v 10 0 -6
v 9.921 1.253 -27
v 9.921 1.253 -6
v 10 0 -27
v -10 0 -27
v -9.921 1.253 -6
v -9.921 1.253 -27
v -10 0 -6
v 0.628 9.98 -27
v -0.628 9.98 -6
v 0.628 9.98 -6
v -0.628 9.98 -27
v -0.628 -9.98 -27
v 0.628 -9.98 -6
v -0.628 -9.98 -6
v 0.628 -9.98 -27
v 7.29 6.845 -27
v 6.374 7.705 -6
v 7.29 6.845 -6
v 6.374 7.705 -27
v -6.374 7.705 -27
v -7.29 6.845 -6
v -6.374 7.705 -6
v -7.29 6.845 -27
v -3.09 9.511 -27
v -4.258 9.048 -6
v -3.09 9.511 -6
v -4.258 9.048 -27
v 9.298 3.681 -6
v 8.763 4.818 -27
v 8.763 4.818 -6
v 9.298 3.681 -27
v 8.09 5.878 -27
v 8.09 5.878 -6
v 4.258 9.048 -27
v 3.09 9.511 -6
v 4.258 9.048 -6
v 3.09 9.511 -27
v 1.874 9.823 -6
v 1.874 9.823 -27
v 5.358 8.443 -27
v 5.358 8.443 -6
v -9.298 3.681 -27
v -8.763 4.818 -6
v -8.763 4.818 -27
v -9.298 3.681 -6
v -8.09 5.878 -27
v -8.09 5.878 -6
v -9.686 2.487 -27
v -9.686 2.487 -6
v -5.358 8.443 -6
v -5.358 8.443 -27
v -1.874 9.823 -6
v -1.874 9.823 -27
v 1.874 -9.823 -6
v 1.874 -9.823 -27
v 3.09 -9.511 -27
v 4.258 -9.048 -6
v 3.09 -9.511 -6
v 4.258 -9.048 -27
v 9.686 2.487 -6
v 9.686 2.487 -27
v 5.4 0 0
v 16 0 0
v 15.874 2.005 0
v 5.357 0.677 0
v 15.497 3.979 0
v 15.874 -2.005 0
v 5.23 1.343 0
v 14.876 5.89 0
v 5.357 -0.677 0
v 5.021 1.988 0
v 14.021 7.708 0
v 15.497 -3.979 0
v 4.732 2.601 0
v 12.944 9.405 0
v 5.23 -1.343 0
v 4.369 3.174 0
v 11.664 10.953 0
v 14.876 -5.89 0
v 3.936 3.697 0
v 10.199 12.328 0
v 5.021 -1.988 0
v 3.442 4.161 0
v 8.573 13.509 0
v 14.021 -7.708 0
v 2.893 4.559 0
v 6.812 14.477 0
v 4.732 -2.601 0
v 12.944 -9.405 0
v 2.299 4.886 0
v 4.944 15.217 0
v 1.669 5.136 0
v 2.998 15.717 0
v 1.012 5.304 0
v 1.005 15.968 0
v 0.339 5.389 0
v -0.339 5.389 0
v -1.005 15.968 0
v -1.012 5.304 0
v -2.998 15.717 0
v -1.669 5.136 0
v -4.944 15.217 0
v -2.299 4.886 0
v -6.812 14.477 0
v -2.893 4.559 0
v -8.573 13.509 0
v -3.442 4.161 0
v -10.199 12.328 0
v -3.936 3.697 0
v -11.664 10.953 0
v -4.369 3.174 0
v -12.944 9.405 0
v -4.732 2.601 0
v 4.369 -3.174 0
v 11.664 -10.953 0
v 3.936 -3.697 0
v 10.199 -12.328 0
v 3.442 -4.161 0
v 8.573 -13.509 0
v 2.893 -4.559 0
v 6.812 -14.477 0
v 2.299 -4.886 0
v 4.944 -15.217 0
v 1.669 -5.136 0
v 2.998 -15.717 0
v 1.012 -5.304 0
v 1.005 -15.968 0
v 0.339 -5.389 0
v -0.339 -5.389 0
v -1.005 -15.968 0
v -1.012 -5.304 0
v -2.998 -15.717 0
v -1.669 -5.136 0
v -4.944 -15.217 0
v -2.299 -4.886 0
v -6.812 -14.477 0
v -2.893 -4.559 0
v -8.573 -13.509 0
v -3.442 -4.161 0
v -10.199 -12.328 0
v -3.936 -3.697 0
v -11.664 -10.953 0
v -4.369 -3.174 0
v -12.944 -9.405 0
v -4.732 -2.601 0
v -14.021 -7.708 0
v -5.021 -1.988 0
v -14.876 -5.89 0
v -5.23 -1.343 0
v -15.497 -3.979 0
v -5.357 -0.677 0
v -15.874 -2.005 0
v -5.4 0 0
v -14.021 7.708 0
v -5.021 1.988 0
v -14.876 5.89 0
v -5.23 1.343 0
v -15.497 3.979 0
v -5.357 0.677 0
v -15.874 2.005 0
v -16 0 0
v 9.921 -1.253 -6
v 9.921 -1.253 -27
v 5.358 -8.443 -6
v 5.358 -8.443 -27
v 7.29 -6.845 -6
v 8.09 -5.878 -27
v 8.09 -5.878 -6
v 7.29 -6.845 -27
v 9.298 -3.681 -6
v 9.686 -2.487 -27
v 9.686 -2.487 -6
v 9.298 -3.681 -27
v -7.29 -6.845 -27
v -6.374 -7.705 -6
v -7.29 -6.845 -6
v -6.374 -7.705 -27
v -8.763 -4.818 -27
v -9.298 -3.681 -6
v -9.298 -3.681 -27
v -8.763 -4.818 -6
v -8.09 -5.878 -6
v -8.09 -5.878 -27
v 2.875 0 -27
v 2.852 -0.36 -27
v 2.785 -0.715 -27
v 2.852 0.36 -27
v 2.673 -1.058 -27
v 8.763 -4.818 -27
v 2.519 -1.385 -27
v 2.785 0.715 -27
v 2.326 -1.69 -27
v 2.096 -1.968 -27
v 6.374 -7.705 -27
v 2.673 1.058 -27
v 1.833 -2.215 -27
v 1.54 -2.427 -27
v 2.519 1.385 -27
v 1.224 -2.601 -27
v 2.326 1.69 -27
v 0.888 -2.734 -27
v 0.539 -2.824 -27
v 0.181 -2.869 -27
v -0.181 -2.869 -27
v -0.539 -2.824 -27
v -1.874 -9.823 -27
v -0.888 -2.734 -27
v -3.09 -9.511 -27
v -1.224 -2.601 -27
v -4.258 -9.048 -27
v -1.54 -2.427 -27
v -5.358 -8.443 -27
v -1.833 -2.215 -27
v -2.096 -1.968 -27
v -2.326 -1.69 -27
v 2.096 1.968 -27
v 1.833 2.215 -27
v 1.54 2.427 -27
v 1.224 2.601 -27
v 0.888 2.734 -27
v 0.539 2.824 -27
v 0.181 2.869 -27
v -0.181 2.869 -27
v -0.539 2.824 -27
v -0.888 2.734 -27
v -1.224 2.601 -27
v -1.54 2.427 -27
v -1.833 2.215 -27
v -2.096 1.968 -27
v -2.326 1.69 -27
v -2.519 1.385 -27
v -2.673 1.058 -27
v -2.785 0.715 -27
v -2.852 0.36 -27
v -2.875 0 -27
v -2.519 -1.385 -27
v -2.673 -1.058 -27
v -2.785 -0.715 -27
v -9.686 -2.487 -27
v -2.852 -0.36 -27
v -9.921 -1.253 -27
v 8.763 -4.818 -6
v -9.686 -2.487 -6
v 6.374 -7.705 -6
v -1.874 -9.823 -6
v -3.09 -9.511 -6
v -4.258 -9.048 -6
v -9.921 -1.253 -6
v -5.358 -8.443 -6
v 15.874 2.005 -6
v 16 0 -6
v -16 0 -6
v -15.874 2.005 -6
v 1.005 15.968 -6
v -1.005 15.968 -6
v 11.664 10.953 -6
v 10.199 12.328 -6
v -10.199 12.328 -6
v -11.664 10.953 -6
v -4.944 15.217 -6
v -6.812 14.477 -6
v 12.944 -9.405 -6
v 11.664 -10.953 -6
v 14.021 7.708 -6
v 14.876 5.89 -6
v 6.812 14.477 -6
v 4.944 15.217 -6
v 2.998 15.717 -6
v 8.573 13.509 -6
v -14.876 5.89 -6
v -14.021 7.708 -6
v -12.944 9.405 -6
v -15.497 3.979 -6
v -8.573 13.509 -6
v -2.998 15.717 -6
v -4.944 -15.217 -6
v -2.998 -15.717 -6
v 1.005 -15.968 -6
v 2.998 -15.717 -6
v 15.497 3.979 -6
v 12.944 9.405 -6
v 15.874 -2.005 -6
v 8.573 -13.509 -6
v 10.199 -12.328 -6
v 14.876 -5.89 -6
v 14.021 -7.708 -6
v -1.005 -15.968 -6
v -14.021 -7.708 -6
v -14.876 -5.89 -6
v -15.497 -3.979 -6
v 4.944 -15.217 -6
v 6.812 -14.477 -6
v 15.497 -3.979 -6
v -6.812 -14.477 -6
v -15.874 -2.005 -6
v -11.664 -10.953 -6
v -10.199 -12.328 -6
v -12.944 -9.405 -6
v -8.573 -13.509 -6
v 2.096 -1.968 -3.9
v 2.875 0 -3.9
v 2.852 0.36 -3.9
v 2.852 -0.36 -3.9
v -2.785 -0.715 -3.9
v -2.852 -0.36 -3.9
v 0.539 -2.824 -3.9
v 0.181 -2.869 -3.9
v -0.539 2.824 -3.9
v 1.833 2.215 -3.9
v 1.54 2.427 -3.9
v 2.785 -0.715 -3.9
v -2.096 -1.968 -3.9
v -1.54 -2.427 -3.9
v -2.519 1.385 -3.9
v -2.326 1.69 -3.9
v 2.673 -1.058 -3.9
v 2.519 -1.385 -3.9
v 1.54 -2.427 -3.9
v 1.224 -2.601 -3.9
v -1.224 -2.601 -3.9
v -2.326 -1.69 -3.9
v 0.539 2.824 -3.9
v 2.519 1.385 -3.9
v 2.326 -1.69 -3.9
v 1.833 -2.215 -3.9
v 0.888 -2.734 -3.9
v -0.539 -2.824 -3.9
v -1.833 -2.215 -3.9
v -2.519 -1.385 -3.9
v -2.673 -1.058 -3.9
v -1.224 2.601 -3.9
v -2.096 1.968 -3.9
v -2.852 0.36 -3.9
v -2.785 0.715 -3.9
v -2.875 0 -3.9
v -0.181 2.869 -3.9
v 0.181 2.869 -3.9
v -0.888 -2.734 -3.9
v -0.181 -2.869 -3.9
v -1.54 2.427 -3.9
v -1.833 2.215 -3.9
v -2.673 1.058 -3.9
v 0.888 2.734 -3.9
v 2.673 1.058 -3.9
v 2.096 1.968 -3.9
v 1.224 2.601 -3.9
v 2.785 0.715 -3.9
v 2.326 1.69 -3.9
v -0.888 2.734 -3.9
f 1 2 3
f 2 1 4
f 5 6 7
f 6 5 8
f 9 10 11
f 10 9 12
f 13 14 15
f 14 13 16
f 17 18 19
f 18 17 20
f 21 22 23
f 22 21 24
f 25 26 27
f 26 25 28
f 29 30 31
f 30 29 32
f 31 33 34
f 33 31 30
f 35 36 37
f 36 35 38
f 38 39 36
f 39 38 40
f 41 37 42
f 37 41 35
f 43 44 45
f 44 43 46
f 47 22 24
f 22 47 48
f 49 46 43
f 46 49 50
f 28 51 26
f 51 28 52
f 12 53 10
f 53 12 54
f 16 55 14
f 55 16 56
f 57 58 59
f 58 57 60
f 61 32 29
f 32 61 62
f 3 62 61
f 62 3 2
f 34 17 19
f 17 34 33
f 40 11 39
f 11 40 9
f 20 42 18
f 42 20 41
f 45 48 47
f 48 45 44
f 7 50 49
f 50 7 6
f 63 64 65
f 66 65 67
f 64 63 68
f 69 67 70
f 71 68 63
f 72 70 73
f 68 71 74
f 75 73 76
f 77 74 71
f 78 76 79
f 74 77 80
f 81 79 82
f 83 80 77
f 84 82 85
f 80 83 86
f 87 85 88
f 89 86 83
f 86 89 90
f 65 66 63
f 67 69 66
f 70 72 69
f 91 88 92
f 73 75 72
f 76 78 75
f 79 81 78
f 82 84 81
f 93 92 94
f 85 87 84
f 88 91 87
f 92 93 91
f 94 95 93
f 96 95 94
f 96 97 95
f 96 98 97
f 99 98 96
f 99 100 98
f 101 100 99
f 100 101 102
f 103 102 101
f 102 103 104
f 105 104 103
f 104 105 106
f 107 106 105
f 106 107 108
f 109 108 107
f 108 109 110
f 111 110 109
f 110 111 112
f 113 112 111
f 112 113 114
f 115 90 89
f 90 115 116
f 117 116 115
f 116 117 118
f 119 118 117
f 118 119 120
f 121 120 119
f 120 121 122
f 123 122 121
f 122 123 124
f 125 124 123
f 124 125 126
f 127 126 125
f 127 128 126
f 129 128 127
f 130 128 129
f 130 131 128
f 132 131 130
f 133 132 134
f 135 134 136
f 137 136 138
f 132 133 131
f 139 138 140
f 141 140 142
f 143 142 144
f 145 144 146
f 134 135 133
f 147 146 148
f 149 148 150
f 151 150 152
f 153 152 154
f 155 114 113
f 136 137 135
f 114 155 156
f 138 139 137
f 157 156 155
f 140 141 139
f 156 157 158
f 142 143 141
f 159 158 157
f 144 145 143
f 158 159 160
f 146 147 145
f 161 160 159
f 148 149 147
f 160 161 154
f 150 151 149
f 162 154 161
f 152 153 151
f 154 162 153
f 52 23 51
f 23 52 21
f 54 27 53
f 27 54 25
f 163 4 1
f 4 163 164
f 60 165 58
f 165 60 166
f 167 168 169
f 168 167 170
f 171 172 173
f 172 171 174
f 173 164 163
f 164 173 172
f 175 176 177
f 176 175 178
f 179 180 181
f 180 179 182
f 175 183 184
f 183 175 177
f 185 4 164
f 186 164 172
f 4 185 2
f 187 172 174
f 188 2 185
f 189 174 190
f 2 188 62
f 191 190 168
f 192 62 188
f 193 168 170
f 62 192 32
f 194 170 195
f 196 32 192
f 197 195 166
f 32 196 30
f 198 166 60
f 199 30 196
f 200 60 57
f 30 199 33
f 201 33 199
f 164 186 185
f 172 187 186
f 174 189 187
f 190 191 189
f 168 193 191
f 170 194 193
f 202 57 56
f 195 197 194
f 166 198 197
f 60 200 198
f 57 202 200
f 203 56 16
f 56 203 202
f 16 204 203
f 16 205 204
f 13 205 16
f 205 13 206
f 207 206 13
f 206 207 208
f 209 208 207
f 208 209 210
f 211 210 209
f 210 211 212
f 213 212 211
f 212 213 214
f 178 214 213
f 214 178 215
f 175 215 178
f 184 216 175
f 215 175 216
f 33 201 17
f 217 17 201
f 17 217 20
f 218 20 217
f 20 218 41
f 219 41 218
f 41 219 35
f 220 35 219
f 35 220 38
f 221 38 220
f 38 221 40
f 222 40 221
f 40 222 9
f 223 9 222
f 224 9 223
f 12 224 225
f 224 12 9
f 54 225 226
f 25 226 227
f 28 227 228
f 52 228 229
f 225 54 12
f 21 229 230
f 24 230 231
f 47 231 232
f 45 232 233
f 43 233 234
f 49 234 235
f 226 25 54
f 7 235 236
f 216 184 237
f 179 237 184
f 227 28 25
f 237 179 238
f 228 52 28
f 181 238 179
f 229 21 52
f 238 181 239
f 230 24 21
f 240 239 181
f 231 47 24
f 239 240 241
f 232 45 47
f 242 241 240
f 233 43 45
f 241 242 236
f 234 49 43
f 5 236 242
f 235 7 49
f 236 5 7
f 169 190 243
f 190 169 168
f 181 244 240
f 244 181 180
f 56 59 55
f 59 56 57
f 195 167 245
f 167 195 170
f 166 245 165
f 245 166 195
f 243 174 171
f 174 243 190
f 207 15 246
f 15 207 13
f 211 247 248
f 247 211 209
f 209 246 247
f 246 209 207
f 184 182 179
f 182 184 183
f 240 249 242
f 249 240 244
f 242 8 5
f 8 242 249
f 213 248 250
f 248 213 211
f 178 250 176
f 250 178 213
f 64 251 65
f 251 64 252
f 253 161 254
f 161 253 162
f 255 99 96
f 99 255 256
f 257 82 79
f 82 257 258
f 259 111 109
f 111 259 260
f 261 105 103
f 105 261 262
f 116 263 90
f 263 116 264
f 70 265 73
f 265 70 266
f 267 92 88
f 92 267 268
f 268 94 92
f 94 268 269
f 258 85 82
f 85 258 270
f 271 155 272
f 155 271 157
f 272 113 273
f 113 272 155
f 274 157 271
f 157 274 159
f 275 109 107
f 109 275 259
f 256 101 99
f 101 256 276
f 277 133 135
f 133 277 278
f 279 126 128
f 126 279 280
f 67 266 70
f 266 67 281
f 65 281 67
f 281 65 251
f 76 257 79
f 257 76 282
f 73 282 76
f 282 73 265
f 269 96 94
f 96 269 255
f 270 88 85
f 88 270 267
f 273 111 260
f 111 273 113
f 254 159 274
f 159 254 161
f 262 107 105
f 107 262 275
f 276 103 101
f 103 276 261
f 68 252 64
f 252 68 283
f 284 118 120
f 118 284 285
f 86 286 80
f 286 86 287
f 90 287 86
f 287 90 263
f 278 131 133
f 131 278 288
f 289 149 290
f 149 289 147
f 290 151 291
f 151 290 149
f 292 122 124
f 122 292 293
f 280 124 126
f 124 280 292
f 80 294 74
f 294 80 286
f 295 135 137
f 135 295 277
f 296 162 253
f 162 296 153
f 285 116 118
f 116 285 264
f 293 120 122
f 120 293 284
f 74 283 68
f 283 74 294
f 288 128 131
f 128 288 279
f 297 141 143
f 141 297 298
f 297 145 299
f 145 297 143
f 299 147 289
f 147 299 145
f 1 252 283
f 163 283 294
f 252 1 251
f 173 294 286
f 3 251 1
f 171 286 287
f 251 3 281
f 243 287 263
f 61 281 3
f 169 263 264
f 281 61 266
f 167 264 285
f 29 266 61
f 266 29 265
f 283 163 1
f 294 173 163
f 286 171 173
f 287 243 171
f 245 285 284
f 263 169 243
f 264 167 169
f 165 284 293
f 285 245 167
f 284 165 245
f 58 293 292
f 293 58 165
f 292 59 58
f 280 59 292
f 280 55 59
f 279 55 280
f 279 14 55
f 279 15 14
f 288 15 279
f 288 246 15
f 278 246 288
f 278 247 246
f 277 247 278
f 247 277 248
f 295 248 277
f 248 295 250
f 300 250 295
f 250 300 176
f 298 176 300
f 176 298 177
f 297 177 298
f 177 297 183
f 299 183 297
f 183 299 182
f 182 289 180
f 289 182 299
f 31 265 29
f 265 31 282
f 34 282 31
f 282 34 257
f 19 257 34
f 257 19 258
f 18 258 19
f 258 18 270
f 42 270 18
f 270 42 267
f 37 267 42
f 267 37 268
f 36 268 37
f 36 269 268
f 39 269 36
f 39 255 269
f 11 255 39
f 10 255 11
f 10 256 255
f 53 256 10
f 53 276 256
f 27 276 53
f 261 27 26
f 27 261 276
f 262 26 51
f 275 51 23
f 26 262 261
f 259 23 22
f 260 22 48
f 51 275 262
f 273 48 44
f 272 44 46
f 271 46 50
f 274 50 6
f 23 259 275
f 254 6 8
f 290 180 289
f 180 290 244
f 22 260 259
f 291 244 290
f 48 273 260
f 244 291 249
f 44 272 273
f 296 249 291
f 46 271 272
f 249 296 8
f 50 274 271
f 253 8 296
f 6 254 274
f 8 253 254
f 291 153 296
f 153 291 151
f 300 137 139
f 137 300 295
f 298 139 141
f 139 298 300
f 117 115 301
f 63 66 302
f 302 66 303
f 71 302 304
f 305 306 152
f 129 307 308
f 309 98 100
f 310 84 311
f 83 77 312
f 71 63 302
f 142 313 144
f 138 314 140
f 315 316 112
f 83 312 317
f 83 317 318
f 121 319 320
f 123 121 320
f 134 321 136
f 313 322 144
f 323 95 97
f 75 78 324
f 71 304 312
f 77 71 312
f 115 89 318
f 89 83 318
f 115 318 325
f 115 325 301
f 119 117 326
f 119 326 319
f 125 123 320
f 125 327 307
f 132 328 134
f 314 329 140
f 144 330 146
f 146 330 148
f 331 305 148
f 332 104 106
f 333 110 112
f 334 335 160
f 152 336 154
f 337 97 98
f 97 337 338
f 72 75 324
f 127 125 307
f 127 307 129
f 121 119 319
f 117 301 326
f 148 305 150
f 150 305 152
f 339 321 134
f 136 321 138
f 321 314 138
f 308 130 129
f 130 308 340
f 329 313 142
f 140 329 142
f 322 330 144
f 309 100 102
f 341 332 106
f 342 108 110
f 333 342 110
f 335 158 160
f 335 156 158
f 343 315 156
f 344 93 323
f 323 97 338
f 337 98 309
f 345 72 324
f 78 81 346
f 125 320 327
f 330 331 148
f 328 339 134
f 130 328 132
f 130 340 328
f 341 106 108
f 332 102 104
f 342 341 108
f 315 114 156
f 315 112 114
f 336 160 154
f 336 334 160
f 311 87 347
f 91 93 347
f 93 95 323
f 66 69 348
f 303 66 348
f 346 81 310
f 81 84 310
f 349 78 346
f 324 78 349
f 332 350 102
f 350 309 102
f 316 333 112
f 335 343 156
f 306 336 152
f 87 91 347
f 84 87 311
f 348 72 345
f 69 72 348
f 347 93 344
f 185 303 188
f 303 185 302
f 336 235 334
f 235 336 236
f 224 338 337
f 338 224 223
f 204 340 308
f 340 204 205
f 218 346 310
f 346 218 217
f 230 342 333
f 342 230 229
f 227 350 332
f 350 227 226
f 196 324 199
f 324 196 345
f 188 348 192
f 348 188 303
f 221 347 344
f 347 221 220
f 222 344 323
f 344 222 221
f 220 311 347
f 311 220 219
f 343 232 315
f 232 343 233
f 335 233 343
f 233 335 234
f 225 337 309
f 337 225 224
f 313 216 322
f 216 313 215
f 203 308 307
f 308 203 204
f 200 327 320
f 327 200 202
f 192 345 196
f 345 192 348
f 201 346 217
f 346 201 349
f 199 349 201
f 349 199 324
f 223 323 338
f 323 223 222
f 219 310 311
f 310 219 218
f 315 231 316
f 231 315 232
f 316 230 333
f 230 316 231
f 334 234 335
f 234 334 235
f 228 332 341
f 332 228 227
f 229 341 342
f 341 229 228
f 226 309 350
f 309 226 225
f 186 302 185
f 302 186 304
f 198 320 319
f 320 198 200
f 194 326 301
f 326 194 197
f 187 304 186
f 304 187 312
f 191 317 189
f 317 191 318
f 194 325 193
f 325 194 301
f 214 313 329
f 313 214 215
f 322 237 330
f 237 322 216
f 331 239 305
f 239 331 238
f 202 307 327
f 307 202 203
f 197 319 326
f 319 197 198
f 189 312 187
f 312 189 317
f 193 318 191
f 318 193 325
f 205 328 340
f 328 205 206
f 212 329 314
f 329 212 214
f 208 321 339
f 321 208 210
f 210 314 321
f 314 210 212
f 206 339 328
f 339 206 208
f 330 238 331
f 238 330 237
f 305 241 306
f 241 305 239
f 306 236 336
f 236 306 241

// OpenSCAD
$fn = 50;


difference() {
	union() {
		translate(v = [0, 0, -27.0000000000]) {
			cylinder(h = 27, r = 10.0000000000);
		}
		translate(v = [0, 0, -6.0000000000]) {
			cylinder(h = 6, r = 16.0000000000);
		}
	}
	union() {
		translate(v = [0, 0, 0]) {
			rotate(a = [0, 0, 0]) {
				difference() {
					union() {
						#translate(v = [0, 0, -27.0000000000]) {
							cylinder(h = 27, r = 2.6000000000);
						}
						#translate(v = [0, 0, -3.9000000000]) {
							cylinder(h = 3.9000000000, r = 10.0000000000, r1 = 2.8750000000, r2 = 5.4000000000);
						}
						#translate(v = [0, 0, -27.0000000000]) {
							cylinder(h = 27, r = 2.8750000000);
						}
						#translate(v = [0, 0, -27.0000000000]) {
							cylinder(h = 27, r = 2.6000000000);
						}
					}
					union();
				}
			}
		}
	}
}
